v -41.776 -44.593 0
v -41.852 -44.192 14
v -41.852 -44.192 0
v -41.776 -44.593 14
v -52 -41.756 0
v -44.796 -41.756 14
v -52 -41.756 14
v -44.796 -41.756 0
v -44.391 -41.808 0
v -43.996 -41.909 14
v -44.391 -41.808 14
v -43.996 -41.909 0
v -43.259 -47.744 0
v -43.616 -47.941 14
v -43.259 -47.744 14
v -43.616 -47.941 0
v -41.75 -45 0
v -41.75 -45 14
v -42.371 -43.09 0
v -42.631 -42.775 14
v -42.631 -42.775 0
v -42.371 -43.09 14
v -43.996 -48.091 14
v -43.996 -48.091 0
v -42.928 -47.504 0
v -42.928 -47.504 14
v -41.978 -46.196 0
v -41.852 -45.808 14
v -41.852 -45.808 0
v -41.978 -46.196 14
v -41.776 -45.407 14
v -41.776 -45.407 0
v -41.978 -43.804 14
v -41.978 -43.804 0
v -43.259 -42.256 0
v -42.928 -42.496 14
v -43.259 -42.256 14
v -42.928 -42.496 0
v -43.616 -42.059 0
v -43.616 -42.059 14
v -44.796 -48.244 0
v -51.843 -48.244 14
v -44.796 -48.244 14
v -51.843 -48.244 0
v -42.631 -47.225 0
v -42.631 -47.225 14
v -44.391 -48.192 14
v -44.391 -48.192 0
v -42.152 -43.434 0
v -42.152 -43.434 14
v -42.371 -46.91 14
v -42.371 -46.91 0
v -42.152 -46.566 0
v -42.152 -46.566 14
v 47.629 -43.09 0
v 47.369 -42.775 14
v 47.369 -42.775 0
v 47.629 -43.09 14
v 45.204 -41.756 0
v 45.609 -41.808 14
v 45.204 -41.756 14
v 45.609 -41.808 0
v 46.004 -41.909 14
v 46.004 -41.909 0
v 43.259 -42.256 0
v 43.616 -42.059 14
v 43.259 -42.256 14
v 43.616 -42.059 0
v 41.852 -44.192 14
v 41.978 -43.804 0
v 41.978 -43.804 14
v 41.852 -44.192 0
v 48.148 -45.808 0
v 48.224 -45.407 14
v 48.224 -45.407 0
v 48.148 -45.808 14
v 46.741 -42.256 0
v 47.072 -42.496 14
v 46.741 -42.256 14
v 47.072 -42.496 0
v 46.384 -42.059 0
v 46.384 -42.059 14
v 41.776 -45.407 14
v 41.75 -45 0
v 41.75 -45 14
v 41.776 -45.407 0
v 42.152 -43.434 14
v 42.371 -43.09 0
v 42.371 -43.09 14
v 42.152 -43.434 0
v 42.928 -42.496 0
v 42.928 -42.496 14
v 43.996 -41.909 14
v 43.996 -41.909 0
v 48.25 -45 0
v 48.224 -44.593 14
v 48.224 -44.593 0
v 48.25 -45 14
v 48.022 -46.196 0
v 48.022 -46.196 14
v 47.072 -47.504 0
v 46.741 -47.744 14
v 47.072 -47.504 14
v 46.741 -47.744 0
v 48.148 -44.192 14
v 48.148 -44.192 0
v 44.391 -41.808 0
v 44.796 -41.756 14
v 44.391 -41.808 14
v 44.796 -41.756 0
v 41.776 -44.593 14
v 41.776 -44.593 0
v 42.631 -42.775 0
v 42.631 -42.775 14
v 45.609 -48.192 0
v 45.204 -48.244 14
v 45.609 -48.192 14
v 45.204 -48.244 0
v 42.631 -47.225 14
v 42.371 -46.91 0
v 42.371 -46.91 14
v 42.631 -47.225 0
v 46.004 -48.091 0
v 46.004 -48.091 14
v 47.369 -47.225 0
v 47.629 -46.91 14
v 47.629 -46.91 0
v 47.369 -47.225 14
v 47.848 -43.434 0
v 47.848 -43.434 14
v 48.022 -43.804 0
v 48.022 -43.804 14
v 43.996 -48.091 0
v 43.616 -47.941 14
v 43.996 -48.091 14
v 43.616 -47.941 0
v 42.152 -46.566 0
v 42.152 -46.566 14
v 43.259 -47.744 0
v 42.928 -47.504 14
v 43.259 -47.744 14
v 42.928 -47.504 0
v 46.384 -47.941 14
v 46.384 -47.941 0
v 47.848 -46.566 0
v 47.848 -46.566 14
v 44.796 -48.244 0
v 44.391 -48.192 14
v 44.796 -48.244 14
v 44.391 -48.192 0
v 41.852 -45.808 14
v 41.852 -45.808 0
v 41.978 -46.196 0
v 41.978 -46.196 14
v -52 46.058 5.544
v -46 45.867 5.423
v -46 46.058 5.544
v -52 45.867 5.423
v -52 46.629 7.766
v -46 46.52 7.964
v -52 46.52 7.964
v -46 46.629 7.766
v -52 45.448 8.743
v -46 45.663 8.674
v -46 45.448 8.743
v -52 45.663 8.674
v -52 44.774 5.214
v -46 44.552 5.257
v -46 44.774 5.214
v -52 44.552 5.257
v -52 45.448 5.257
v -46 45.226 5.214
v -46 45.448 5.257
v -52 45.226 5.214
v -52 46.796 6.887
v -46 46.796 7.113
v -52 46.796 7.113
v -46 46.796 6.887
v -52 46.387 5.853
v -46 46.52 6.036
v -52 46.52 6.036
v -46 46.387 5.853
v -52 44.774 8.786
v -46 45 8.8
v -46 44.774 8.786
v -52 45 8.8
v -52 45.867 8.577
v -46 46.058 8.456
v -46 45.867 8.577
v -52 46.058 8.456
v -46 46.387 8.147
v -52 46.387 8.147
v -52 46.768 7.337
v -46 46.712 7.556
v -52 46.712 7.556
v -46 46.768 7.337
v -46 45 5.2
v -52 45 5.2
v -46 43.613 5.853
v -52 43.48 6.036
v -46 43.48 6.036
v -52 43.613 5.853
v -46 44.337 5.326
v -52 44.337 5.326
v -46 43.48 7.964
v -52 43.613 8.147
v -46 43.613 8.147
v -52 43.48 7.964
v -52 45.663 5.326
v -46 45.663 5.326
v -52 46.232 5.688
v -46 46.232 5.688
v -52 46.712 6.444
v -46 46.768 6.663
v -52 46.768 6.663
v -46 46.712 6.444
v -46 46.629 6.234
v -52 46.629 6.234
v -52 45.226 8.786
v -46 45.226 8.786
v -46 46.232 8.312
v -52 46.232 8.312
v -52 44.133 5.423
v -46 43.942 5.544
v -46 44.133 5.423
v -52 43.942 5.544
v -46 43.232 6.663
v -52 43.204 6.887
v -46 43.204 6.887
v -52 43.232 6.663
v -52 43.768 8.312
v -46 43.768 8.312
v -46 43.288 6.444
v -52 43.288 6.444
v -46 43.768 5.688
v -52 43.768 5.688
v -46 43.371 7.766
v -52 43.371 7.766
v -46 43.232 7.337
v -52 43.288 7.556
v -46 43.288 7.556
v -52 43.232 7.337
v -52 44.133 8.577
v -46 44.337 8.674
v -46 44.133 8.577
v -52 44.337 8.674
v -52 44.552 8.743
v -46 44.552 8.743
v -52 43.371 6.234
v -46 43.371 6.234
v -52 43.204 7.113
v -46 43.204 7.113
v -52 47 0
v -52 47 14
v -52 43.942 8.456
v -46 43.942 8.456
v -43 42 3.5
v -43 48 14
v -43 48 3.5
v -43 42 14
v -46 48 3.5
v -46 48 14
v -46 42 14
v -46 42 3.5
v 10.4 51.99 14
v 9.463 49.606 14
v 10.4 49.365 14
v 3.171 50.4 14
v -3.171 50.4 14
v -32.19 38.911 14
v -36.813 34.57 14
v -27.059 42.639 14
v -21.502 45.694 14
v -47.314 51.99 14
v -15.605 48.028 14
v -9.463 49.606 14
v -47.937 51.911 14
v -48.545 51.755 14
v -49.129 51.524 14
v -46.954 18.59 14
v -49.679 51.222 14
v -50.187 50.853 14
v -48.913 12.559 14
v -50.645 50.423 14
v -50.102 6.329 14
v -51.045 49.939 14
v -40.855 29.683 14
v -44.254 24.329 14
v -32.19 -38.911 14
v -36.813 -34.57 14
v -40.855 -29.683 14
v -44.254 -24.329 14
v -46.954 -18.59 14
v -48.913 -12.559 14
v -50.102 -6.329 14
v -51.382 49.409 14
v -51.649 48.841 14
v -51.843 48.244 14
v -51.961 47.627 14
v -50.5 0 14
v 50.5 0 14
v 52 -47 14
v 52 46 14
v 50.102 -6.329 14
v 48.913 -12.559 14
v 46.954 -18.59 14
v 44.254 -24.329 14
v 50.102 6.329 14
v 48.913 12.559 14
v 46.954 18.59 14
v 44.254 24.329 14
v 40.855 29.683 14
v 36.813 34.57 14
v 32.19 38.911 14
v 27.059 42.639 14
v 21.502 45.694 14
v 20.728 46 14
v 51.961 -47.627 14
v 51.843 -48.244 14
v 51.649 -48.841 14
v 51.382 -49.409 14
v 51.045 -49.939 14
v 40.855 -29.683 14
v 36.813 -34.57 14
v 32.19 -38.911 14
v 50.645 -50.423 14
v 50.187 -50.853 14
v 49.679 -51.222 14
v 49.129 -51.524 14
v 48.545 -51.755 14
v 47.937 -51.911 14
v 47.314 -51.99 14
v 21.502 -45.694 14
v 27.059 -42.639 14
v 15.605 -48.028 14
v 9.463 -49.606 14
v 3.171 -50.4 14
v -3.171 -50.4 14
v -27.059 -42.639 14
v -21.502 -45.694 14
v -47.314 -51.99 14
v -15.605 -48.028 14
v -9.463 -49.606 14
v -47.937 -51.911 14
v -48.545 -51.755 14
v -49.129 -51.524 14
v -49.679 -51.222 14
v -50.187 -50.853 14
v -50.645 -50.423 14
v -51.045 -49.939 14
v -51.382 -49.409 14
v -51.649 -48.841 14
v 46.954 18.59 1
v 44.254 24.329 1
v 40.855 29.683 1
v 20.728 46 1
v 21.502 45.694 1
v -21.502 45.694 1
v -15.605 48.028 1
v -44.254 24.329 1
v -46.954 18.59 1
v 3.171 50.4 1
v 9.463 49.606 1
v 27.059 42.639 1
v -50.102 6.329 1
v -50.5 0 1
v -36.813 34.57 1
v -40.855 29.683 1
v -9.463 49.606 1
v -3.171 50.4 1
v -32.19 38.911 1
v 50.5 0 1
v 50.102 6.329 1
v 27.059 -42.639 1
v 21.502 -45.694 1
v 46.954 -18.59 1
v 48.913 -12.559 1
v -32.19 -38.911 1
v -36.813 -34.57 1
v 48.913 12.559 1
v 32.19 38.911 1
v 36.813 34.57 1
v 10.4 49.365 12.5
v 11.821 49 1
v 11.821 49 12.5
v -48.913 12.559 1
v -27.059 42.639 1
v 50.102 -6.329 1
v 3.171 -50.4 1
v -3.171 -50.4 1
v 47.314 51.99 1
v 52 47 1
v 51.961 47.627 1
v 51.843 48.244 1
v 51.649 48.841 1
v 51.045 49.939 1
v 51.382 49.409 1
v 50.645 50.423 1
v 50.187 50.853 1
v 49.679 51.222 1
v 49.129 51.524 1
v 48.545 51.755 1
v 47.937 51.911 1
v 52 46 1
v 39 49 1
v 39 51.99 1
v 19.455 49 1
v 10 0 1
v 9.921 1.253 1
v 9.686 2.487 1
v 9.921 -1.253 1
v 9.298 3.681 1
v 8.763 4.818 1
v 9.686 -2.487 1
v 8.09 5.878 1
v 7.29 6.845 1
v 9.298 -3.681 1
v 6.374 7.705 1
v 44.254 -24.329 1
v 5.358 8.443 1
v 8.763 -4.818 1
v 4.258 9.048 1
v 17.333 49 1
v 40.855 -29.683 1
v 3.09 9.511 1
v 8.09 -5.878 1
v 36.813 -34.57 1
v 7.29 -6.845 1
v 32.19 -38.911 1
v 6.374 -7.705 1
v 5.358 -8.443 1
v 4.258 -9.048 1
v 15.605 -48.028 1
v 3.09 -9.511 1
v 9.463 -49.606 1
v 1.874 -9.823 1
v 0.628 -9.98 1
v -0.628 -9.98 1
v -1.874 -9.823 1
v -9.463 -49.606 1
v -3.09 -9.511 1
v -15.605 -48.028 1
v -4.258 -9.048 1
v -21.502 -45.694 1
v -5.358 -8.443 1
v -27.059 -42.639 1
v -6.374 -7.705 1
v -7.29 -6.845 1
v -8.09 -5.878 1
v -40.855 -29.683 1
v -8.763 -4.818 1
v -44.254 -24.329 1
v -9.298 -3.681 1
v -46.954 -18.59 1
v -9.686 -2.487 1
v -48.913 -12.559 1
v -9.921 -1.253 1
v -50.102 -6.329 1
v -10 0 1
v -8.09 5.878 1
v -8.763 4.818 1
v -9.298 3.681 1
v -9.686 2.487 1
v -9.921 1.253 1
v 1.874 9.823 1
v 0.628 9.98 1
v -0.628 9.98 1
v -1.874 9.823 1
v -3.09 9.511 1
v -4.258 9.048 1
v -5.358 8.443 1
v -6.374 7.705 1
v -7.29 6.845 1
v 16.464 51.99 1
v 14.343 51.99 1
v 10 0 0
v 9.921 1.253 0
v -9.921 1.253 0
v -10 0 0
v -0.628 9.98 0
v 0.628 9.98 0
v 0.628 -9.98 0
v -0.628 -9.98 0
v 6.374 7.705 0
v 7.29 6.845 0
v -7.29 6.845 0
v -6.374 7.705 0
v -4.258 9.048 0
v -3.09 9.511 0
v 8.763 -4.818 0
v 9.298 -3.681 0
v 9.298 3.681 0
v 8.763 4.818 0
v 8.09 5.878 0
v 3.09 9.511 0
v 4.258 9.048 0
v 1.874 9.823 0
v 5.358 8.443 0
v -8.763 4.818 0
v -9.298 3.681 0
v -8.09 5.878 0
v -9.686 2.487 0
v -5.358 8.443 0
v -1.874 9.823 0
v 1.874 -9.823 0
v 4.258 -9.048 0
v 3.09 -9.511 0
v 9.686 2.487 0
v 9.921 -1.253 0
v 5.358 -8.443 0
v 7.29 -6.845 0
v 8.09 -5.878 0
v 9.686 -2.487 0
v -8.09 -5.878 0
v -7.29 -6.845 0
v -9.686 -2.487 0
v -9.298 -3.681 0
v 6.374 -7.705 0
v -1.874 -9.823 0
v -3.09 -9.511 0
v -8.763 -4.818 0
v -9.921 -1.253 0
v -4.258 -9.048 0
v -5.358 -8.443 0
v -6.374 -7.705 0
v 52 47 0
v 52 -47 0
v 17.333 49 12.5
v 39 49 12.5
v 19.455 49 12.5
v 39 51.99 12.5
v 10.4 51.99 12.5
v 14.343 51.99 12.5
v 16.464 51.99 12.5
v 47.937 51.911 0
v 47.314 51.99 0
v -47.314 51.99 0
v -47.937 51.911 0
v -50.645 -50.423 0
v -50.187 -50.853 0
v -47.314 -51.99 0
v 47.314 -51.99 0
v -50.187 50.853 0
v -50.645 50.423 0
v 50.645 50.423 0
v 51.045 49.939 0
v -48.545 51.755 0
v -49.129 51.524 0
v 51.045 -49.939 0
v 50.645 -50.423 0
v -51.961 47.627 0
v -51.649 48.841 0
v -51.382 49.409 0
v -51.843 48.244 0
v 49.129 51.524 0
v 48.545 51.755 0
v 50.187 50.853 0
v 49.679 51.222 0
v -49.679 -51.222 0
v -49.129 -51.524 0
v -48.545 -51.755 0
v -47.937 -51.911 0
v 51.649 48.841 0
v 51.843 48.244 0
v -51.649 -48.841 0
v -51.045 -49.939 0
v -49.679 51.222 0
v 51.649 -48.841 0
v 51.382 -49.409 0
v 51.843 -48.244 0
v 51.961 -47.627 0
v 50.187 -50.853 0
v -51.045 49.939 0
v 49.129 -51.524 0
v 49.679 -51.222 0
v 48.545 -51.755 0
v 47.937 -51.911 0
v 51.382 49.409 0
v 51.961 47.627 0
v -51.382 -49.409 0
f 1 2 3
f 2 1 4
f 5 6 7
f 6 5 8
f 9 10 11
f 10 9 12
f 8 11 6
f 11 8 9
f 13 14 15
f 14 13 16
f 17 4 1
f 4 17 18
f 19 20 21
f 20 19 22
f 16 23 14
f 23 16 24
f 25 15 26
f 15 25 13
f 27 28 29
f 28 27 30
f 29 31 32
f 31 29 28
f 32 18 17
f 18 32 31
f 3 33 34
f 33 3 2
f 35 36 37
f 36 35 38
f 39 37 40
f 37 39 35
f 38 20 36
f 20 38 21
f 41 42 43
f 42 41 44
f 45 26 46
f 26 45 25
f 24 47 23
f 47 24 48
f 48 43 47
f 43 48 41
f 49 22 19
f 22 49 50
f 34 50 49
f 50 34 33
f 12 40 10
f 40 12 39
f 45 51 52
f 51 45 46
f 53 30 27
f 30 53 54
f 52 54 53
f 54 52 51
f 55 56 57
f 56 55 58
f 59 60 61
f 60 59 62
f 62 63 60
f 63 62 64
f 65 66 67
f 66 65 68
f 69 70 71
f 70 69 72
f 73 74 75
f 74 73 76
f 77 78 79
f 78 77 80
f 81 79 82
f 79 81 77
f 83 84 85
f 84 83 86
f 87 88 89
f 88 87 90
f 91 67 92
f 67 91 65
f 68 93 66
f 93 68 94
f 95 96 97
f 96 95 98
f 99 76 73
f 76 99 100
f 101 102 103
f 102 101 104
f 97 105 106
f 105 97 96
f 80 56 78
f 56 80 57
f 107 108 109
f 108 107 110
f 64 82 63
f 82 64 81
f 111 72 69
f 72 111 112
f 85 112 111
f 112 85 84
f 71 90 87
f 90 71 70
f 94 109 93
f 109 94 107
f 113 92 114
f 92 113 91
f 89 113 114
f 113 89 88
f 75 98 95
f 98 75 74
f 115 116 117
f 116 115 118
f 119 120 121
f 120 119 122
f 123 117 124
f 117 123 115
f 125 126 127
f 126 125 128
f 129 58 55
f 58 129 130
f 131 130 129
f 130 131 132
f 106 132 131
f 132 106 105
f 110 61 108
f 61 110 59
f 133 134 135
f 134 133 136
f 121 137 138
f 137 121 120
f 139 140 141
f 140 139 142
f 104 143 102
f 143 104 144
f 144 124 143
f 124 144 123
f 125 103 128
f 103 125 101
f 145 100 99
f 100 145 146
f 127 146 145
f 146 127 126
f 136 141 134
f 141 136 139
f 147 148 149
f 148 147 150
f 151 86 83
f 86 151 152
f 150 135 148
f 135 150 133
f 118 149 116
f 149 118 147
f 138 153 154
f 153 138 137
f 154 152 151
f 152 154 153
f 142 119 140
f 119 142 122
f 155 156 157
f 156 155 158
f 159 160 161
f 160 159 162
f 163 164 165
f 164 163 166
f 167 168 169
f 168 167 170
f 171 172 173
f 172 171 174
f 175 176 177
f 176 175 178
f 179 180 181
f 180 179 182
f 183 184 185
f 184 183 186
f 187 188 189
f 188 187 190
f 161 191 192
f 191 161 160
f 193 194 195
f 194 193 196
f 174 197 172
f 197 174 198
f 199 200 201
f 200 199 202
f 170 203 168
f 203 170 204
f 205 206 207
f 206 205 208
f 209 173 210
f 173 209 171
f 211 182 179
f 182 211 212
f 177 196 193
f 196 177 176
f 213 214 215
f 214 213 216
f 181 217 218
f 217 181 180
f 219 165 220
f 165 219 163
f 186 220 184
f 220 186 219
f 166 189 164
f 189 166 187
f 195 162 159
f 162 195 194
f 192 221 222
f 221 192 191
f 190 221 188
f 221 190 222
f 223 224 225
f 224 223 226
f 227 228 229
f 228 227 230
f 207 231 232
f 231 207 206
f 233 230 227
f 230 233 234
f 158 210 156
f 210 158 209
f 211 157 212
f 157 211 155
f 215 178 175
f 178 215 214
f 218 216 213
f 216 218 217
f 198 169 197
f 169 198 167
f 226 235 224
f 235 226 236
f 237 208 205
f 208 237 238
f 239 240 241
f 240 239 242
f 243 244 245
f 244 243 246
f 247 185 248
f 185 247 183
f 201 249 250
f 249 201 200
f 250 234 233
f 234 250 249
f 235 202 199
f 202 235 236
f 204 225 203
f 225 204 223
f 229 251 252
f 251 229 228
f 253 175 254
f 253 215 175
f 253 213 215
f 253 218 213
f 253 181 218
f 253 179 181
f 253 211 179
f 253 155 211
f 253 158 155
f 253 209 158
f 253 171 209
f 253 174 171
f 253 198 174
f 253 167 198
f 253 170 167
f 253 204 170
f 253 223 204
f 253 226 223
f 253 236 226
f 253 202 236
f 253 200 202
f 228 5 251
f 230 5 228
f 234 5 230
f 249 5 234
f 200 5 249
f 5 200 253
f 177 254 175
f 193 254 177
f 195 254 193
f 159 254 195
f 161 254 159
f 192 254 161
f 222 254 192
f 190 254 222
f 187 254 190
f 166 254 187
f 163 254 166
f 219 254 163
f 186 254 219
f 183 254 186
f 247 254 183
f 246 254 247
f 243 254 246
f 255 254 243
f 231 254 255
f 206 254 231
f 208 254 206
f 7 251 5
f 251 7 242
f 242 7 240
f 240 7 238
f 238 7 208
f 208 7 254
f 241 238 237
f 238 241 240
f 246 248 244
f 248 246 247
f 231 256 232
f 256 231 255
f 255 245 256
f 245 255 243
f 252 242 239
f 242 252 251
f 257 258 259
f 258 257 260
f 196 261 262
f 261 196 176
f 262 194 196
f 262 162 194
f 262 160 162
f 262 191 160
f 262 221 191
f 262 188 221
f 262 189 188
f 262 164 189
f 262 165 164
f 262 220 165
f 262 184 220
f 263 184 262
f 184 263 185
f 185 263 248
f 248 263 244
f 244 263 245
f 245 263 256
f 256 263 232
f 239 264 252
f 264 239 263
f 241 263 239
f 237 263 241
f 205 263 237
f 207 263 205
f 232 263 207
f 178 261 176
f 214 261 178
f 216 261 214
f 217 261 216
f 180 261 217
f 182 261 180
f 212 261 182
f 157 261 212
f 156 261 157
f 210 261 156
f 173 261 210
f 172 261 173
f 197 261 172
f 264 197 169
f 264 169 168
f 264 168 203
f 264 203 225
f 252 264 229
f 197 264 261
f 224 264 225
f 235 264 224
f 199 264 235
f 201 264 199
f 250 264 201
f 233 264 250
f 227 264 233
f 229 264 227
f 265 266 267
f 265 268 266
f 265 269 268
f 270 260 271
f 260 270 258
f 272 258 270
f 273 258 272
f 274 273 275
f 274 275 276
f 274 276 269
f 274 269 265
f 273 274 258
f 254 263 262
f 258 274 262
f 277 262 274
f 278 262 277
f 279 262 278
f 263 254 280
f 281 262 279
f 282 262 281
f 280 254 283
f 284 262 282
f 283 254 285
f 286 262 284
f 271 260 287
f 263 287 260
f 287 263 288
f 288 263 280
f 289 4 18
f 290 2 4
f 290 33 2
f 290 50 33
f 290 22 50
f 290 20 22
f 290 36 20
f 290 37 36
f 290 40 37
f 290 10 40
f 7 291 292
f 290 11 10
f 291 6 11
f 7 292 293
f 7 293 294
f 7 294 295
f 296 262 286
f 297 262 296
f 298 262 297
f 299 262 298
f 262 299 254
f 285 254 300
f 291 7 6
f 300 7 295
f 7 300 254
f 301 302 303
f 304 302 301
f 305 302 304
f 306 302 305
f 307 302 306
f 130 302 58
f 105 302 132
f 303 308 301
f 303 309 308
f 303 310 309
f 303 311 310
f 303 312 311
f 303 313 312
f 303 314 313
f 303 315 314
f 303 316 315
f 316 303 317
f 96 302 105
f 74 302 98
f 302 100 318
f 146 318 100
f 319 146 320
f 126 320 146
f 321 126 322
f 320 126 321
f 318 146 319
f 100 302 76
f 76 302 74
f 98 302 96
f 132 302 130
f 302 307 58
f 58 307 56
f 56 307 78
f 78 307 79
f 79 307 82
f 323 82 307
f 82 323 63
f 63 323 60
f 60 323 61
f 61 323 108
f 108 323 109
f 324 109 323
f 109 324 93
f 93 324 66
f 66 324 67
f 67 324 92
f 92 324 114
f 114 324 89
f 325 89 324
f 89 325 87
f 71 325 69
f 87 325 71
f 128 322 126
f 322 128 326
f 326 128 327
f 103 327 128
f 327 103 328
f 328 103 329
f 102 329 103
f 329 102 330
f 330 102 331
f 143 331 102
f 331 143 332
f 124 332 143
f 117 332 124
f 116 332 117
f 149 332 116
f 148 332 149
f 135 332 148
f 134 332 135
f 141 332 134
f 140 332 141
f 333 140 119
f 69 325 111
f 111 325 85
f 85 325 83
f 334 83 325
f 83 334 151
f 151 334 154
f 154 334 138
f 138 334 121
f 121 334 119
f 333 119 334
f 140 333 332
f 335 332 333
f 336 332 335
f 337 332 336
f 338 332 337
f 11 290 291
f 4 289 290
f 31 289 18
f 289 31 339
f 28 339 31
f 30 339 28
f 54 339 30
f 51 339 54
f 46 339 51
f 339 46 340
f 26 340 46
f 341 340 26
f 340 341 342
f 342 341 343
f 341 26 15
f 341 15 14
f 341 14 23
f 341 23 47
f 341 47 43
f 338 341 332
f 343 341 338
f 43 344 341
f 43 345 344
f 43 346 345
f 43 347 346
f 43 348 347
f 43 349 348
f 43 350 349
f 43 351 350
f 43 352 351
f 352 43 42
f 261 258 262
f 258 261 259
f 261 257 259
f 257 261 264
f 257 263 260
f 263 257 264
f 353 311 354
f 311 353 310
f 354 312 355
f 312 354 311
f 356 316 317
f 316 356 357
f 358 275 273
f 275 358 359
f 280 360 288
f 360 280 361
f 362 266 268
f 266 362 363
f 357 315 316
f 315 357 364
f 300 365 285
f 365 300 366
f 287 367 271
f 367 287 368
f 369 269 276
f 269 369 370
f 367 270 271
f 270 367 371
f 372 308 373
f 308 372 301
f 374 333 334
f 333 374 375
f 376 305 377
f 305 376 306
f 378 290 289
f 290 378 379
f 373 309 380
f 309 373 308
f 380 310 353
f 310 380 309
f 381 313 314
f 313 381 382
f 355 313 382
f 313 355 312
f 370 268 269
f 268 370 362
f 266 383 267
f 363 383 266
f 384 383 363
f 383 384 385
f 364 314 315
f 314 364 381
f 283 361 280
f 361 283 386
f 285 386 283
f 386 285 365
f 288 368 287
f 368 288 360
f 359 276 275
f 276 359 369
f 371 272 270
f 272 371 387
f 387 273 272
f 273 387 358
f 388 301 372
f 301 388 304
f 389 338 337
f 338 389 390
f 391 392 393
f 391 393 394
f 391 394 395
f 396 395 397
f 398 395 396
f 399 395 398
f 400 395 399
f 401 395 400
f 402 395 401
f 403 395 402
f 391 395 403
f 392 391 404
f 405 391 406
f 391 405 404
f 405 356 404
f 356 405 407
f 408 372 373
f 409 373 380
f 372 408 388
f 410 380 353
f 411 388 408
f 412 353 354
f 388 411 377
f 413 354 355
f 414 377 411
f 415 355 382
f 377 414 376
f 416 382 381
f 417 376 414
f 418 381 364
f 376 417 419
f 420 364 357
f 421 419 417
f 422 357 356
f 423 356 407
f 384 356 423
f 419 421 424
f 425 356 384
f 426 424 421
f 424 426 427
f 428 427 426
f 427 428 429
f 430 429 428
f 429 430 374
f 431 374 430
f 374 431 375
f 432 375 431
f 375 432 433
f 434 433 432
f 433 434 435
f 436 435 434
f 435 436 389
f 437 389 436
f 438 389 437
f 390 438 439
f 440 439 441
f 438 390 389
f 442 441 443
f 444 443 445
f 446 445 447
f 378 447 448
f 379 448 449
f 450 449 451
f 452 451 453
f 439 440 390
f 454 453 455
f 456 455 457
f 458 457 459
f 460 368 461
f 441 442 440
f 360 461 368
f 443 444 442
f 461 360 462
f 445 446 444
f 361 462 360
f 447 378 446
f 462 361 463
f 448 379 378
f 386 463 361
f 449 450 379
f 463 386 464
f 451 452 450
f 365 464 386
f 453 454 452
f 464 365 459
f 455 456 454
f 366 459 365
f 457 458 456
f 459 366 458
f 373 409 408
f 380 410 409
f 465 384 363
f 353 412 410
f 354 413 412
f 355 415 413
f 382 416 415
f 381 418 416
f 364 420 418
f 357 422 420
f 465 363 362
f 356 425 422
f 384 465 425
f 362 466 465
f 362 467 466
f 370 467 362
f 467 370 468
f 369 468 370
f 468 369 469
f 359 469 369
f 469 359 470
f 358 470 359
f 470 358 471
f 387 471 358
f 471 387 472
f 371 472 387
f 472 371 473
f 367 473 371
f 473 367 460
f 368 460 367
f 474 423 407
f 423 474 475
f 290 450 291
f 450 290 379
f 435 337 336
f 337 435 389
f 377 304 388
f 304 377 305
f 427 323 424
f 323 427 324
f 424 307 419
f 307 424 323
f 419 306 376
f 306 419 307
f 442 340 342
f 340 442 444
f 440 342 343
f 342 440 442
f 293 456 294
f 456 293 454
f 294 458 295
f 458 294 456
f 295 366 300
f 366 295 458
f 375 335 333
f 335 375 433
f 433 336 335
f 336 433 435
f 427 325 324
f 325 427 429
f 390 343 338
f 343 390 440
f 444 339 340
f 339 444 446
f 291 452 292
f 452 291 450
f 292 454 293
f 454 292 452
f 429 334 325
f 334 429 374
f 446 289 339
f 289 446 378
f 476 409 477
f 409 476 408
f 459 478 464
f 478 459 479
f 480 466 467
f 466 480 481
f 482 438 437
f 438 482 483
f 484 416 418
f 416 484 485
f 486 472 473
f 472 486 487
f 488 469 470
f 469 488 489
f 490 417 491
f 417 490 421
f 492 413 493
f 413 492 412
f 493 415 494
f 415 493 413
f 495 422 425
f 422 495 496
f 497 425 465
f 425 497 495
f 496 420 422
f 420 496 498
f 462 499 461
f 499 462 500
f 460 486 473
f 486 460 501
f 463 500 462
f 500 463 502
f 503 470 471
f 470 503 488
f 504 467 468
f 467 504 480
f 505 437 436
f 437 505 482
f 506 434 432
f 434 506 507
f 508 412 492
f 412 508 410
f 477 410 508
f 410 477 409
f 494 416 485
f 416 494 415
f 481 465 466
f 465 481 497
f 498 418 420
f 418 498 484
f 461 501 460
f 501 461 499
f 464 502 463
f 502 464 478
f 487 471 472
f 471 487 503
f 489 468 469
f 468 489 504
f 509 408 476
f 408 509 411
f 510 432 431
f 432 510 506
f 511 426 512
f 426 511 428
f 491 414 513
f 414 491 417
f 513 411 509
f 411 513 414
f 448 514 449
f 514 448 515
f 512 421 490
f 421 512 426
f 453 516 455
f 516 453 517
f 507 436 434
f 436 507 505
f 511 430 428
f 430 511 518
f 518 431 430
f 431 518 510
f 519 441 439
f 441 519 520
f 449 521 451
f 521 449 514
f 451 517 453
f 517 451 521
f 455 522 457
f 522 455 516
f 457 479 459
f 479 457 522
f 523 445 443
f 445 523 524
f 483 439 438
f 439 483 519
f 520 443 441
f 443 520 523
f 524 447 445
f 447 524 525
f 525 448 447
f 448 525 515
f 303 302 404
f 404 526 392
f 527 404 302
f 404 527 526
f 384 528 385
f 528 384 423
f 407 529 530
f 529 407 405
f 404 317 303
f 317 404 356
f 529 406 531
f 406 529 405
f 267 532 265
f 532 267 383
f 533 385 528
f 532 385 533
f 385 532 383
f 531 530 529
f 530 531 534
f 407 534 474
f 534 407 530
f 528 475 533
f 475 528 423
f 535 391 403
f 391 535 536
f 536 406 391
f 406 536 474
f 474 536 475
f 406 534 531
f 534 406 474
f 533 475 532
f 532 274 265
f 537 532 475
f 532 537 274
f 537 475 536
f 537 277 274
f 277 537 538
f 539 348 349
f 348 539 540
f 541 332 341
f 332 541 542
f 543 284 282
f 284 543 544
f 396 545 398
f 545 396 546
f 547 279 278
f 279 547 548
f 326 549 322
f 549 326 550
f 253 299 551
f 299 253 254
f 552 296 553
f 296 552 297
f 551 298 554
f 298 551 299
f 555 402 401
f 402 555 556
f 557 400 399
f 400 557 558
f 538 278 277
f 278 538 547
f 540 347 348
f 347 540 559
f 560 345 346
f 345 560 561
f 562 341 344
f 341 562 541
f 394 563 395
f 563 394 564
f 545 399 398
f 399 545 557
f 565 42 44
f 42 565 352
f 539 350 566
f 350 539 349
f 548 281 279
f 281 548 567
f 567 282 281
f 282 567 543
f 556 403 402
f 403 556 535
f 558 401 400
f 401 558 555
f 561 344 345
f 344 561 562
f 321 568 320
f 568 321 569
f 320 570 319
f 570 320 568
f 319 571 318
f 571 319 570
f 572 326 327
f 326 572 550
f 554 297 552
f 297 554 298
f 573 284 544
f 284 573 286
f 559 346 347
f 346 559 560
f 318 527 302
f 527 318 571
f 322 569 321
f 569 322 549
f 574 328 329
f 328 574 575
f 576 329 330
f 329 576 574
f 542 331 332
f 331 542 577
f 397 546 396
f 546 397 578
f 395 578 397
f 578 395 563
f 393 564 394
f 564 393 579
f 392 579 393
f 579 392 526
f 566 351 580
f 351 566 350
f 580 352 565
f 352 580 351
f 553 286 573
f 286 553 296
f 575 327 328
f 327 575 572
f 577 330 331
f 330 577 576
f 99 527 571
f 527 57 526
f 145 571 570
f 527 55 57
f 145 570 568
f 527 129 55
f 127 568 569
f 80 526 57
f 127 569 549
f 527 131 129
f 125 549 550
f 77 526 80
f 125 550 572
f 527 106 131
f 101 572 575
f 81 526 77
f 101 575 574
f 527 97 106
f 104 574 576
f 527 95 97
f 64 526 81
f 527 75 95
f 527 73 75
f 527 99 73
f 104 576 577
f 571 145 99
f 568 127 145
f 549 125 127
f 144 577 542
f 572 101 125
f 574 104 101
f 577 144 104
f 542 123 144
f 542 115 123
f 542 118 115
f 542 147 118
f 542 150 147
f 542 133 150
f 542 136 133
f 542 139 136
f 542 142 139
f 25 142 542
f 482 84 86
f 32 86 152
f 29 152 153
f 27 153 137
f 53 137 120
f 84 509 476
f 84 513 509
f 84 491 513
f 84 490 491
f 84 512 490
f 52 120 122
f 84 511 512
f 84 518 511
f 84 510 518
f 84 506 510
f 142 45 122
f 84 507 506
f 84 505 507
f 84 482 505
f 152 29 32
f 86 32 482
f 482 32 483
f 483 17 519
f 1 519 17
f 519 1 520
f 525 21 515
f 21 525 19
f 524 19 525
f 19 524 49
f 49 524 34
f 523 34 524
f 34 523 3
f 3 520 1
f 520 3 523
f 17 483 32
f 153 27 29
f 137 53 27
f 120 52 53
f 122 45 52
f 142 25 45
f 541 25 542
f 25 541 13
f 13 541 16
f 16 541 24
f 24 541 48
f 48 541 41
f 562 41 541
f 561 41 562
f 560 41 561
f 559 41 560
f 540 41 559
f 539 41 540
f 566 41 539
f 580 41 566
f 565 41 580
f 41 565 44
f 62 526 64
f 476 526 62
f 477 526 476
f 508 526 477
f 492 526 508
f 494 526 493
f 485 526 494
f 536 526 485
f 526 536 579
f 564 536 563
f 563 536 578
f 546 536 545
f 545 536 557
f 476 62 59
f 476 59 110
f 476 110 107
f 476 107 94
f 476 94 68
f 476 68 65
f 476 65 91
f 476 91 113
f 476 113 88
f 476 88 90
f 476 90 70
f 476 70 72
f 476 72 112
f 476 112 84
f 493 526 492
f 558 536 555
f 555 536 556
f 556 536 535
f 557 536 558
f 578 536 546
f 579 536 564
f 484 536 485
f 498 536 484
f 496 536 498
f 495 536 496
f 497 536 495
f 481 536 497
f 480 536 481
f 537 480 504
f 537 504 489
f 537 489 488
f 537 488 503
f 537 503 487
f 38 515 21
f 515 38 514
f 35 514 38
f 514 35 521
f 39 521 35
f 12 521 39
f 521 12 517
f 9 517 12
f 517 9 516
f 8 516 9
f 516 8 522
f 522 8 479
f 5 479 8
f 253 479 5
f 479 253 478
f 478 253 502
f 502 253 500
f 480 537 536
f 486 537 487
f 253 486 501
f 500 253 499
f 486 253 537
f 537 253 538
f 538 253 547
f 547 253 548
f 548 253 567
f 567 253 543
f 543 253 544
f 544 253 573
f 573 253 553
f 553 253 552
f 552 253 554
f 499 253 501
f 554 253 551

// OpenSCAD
$fn = 50;


difference() {
	union() {
		translate(v = [0, 0, 0]) {
			rotate(a = [0, 0, 0]) {
				hull() {
					translate(v = [-47.0000000000, 47.0000000000, 0]) {
						rotate(a = [0, 0, 0]) {
							translate(v = [0, 0, 0]) {
								rotate(a = [0, 0, 0]) {
									cylinder(h = 14, r = 5);
								}
							}
						}
					}
					translate(v = [47.0000000000, 47.0000000000, 0]) {
						rotate(a = [0, 0, 0]) {
							translate(v = [0, 0, 0]) {
								rotate(a = [0, 0, 0]) {
									cylinder(h = 14, r = 5);
								}
							}
						}
					}
					translate(v = [-47.0000000000, -47.0000000000, 0]) {
						rotate(a = [0, 0, 0]) {
							translate(v = [0, 0, 0]) {
								rotate(a = [0, 0, 0]) {
									cylinder(h = 14, r = 5);
								}
							}
						}
					}
					translate(v = [47.0000000000, -47.0000000000, 0]) {
						rotate(a = [0, 0, 0]) {
							translate(v = [0, 0, 0]) {
								rotate(a = [0, 0, 0]) {
									cylinder(h = 14, r = 5);
								}
							}
						}
					}
				}
			}
		}
	}
	union() {
		translate(v = [-52.5000000000, -45.0000000000, -125]) {
			rotate(a = [0, 0, 0]) {
				hull() {
					translate(v = [7.5000000000, 0, 0]) {
						rotate(a = [0, 0, 0]) {
							translate(v = [0, 0, 0]) {
								rotate(a = [0, 0, 0]) {
									cylinder(h = 250, r = 3.2500000000);
								}
							}
						}
					}
					translate(v = [-7.5000000000, 0, 0]) {
						rotate(a = [0, 0, 0]) {
							translate(v = [0, 0, 0]) {
								rotate(a = [0, 0, 0]) {
									cylinder(h = 250, r = 3.2500000000);
								}
							}
						}
					}
				}
			}
		}
		translate(v = [45.0000000000, -45.0000000000, -125.0000000000]) {
			rotate(a = [0, 0, 0]) {
				cylinder(h = 250, r = 3.2500000000);
			}
		}
		translate(v = [-52.0000000000, 45.0000000000, 7.0000000000]) {
			rotate(a = [0, 90, 0]) {
				cylinder(h = 9, r = 1.8000000000);
			}
		}
		translate(v = [-46.0000000000, 42.0000000000, 3.5000000000]) {
			rotate(a = [0, 0, 0]) {
				cube(size = [3, 6, 10.5000000000]);
			}
		}
		translate(v = [0, 0, 1.0000000000]) {
			rotate(a = [0, 0, 0]) {
				cylinder(h = 16, r = 50.5000000000);
			}
		}
		translate(v = [0, 0, -7.0000000000]) {
			rotate(a = [0, 0, 0]) {
				cylinder(h = 14, r = 10.0000000000);
			}
		}
		translate(v = [0.0000000000, 46.0000000000, 1]) {
			rotate(a = [0, 0, 0]) {
				cube(size = [52.0000000000, 3, 16]);
			}
		}
		translate(v = [39.0000000000, 46.0000000000, 1]) {
			rotate(a = [0, 0, 0]) {
				cube(size = [13.0000000000, 6, 16]);
			}
		}
		translate(v = [10.4000000000, 46.0000000000, 12.5000000000]) {
			rotate(a = [0, 0, 0]) {
				cube(size = [41.6000000000, 6, 1.5000000000]);
			}
		}
		translate(v = [13.5833333333, 52.7500000000, 1]) {
			rotate(a = [0, 0, -45]) {
				cube(size = [7.5000000000, 1.5000000000, 16]);
			}
		}
	}
}
